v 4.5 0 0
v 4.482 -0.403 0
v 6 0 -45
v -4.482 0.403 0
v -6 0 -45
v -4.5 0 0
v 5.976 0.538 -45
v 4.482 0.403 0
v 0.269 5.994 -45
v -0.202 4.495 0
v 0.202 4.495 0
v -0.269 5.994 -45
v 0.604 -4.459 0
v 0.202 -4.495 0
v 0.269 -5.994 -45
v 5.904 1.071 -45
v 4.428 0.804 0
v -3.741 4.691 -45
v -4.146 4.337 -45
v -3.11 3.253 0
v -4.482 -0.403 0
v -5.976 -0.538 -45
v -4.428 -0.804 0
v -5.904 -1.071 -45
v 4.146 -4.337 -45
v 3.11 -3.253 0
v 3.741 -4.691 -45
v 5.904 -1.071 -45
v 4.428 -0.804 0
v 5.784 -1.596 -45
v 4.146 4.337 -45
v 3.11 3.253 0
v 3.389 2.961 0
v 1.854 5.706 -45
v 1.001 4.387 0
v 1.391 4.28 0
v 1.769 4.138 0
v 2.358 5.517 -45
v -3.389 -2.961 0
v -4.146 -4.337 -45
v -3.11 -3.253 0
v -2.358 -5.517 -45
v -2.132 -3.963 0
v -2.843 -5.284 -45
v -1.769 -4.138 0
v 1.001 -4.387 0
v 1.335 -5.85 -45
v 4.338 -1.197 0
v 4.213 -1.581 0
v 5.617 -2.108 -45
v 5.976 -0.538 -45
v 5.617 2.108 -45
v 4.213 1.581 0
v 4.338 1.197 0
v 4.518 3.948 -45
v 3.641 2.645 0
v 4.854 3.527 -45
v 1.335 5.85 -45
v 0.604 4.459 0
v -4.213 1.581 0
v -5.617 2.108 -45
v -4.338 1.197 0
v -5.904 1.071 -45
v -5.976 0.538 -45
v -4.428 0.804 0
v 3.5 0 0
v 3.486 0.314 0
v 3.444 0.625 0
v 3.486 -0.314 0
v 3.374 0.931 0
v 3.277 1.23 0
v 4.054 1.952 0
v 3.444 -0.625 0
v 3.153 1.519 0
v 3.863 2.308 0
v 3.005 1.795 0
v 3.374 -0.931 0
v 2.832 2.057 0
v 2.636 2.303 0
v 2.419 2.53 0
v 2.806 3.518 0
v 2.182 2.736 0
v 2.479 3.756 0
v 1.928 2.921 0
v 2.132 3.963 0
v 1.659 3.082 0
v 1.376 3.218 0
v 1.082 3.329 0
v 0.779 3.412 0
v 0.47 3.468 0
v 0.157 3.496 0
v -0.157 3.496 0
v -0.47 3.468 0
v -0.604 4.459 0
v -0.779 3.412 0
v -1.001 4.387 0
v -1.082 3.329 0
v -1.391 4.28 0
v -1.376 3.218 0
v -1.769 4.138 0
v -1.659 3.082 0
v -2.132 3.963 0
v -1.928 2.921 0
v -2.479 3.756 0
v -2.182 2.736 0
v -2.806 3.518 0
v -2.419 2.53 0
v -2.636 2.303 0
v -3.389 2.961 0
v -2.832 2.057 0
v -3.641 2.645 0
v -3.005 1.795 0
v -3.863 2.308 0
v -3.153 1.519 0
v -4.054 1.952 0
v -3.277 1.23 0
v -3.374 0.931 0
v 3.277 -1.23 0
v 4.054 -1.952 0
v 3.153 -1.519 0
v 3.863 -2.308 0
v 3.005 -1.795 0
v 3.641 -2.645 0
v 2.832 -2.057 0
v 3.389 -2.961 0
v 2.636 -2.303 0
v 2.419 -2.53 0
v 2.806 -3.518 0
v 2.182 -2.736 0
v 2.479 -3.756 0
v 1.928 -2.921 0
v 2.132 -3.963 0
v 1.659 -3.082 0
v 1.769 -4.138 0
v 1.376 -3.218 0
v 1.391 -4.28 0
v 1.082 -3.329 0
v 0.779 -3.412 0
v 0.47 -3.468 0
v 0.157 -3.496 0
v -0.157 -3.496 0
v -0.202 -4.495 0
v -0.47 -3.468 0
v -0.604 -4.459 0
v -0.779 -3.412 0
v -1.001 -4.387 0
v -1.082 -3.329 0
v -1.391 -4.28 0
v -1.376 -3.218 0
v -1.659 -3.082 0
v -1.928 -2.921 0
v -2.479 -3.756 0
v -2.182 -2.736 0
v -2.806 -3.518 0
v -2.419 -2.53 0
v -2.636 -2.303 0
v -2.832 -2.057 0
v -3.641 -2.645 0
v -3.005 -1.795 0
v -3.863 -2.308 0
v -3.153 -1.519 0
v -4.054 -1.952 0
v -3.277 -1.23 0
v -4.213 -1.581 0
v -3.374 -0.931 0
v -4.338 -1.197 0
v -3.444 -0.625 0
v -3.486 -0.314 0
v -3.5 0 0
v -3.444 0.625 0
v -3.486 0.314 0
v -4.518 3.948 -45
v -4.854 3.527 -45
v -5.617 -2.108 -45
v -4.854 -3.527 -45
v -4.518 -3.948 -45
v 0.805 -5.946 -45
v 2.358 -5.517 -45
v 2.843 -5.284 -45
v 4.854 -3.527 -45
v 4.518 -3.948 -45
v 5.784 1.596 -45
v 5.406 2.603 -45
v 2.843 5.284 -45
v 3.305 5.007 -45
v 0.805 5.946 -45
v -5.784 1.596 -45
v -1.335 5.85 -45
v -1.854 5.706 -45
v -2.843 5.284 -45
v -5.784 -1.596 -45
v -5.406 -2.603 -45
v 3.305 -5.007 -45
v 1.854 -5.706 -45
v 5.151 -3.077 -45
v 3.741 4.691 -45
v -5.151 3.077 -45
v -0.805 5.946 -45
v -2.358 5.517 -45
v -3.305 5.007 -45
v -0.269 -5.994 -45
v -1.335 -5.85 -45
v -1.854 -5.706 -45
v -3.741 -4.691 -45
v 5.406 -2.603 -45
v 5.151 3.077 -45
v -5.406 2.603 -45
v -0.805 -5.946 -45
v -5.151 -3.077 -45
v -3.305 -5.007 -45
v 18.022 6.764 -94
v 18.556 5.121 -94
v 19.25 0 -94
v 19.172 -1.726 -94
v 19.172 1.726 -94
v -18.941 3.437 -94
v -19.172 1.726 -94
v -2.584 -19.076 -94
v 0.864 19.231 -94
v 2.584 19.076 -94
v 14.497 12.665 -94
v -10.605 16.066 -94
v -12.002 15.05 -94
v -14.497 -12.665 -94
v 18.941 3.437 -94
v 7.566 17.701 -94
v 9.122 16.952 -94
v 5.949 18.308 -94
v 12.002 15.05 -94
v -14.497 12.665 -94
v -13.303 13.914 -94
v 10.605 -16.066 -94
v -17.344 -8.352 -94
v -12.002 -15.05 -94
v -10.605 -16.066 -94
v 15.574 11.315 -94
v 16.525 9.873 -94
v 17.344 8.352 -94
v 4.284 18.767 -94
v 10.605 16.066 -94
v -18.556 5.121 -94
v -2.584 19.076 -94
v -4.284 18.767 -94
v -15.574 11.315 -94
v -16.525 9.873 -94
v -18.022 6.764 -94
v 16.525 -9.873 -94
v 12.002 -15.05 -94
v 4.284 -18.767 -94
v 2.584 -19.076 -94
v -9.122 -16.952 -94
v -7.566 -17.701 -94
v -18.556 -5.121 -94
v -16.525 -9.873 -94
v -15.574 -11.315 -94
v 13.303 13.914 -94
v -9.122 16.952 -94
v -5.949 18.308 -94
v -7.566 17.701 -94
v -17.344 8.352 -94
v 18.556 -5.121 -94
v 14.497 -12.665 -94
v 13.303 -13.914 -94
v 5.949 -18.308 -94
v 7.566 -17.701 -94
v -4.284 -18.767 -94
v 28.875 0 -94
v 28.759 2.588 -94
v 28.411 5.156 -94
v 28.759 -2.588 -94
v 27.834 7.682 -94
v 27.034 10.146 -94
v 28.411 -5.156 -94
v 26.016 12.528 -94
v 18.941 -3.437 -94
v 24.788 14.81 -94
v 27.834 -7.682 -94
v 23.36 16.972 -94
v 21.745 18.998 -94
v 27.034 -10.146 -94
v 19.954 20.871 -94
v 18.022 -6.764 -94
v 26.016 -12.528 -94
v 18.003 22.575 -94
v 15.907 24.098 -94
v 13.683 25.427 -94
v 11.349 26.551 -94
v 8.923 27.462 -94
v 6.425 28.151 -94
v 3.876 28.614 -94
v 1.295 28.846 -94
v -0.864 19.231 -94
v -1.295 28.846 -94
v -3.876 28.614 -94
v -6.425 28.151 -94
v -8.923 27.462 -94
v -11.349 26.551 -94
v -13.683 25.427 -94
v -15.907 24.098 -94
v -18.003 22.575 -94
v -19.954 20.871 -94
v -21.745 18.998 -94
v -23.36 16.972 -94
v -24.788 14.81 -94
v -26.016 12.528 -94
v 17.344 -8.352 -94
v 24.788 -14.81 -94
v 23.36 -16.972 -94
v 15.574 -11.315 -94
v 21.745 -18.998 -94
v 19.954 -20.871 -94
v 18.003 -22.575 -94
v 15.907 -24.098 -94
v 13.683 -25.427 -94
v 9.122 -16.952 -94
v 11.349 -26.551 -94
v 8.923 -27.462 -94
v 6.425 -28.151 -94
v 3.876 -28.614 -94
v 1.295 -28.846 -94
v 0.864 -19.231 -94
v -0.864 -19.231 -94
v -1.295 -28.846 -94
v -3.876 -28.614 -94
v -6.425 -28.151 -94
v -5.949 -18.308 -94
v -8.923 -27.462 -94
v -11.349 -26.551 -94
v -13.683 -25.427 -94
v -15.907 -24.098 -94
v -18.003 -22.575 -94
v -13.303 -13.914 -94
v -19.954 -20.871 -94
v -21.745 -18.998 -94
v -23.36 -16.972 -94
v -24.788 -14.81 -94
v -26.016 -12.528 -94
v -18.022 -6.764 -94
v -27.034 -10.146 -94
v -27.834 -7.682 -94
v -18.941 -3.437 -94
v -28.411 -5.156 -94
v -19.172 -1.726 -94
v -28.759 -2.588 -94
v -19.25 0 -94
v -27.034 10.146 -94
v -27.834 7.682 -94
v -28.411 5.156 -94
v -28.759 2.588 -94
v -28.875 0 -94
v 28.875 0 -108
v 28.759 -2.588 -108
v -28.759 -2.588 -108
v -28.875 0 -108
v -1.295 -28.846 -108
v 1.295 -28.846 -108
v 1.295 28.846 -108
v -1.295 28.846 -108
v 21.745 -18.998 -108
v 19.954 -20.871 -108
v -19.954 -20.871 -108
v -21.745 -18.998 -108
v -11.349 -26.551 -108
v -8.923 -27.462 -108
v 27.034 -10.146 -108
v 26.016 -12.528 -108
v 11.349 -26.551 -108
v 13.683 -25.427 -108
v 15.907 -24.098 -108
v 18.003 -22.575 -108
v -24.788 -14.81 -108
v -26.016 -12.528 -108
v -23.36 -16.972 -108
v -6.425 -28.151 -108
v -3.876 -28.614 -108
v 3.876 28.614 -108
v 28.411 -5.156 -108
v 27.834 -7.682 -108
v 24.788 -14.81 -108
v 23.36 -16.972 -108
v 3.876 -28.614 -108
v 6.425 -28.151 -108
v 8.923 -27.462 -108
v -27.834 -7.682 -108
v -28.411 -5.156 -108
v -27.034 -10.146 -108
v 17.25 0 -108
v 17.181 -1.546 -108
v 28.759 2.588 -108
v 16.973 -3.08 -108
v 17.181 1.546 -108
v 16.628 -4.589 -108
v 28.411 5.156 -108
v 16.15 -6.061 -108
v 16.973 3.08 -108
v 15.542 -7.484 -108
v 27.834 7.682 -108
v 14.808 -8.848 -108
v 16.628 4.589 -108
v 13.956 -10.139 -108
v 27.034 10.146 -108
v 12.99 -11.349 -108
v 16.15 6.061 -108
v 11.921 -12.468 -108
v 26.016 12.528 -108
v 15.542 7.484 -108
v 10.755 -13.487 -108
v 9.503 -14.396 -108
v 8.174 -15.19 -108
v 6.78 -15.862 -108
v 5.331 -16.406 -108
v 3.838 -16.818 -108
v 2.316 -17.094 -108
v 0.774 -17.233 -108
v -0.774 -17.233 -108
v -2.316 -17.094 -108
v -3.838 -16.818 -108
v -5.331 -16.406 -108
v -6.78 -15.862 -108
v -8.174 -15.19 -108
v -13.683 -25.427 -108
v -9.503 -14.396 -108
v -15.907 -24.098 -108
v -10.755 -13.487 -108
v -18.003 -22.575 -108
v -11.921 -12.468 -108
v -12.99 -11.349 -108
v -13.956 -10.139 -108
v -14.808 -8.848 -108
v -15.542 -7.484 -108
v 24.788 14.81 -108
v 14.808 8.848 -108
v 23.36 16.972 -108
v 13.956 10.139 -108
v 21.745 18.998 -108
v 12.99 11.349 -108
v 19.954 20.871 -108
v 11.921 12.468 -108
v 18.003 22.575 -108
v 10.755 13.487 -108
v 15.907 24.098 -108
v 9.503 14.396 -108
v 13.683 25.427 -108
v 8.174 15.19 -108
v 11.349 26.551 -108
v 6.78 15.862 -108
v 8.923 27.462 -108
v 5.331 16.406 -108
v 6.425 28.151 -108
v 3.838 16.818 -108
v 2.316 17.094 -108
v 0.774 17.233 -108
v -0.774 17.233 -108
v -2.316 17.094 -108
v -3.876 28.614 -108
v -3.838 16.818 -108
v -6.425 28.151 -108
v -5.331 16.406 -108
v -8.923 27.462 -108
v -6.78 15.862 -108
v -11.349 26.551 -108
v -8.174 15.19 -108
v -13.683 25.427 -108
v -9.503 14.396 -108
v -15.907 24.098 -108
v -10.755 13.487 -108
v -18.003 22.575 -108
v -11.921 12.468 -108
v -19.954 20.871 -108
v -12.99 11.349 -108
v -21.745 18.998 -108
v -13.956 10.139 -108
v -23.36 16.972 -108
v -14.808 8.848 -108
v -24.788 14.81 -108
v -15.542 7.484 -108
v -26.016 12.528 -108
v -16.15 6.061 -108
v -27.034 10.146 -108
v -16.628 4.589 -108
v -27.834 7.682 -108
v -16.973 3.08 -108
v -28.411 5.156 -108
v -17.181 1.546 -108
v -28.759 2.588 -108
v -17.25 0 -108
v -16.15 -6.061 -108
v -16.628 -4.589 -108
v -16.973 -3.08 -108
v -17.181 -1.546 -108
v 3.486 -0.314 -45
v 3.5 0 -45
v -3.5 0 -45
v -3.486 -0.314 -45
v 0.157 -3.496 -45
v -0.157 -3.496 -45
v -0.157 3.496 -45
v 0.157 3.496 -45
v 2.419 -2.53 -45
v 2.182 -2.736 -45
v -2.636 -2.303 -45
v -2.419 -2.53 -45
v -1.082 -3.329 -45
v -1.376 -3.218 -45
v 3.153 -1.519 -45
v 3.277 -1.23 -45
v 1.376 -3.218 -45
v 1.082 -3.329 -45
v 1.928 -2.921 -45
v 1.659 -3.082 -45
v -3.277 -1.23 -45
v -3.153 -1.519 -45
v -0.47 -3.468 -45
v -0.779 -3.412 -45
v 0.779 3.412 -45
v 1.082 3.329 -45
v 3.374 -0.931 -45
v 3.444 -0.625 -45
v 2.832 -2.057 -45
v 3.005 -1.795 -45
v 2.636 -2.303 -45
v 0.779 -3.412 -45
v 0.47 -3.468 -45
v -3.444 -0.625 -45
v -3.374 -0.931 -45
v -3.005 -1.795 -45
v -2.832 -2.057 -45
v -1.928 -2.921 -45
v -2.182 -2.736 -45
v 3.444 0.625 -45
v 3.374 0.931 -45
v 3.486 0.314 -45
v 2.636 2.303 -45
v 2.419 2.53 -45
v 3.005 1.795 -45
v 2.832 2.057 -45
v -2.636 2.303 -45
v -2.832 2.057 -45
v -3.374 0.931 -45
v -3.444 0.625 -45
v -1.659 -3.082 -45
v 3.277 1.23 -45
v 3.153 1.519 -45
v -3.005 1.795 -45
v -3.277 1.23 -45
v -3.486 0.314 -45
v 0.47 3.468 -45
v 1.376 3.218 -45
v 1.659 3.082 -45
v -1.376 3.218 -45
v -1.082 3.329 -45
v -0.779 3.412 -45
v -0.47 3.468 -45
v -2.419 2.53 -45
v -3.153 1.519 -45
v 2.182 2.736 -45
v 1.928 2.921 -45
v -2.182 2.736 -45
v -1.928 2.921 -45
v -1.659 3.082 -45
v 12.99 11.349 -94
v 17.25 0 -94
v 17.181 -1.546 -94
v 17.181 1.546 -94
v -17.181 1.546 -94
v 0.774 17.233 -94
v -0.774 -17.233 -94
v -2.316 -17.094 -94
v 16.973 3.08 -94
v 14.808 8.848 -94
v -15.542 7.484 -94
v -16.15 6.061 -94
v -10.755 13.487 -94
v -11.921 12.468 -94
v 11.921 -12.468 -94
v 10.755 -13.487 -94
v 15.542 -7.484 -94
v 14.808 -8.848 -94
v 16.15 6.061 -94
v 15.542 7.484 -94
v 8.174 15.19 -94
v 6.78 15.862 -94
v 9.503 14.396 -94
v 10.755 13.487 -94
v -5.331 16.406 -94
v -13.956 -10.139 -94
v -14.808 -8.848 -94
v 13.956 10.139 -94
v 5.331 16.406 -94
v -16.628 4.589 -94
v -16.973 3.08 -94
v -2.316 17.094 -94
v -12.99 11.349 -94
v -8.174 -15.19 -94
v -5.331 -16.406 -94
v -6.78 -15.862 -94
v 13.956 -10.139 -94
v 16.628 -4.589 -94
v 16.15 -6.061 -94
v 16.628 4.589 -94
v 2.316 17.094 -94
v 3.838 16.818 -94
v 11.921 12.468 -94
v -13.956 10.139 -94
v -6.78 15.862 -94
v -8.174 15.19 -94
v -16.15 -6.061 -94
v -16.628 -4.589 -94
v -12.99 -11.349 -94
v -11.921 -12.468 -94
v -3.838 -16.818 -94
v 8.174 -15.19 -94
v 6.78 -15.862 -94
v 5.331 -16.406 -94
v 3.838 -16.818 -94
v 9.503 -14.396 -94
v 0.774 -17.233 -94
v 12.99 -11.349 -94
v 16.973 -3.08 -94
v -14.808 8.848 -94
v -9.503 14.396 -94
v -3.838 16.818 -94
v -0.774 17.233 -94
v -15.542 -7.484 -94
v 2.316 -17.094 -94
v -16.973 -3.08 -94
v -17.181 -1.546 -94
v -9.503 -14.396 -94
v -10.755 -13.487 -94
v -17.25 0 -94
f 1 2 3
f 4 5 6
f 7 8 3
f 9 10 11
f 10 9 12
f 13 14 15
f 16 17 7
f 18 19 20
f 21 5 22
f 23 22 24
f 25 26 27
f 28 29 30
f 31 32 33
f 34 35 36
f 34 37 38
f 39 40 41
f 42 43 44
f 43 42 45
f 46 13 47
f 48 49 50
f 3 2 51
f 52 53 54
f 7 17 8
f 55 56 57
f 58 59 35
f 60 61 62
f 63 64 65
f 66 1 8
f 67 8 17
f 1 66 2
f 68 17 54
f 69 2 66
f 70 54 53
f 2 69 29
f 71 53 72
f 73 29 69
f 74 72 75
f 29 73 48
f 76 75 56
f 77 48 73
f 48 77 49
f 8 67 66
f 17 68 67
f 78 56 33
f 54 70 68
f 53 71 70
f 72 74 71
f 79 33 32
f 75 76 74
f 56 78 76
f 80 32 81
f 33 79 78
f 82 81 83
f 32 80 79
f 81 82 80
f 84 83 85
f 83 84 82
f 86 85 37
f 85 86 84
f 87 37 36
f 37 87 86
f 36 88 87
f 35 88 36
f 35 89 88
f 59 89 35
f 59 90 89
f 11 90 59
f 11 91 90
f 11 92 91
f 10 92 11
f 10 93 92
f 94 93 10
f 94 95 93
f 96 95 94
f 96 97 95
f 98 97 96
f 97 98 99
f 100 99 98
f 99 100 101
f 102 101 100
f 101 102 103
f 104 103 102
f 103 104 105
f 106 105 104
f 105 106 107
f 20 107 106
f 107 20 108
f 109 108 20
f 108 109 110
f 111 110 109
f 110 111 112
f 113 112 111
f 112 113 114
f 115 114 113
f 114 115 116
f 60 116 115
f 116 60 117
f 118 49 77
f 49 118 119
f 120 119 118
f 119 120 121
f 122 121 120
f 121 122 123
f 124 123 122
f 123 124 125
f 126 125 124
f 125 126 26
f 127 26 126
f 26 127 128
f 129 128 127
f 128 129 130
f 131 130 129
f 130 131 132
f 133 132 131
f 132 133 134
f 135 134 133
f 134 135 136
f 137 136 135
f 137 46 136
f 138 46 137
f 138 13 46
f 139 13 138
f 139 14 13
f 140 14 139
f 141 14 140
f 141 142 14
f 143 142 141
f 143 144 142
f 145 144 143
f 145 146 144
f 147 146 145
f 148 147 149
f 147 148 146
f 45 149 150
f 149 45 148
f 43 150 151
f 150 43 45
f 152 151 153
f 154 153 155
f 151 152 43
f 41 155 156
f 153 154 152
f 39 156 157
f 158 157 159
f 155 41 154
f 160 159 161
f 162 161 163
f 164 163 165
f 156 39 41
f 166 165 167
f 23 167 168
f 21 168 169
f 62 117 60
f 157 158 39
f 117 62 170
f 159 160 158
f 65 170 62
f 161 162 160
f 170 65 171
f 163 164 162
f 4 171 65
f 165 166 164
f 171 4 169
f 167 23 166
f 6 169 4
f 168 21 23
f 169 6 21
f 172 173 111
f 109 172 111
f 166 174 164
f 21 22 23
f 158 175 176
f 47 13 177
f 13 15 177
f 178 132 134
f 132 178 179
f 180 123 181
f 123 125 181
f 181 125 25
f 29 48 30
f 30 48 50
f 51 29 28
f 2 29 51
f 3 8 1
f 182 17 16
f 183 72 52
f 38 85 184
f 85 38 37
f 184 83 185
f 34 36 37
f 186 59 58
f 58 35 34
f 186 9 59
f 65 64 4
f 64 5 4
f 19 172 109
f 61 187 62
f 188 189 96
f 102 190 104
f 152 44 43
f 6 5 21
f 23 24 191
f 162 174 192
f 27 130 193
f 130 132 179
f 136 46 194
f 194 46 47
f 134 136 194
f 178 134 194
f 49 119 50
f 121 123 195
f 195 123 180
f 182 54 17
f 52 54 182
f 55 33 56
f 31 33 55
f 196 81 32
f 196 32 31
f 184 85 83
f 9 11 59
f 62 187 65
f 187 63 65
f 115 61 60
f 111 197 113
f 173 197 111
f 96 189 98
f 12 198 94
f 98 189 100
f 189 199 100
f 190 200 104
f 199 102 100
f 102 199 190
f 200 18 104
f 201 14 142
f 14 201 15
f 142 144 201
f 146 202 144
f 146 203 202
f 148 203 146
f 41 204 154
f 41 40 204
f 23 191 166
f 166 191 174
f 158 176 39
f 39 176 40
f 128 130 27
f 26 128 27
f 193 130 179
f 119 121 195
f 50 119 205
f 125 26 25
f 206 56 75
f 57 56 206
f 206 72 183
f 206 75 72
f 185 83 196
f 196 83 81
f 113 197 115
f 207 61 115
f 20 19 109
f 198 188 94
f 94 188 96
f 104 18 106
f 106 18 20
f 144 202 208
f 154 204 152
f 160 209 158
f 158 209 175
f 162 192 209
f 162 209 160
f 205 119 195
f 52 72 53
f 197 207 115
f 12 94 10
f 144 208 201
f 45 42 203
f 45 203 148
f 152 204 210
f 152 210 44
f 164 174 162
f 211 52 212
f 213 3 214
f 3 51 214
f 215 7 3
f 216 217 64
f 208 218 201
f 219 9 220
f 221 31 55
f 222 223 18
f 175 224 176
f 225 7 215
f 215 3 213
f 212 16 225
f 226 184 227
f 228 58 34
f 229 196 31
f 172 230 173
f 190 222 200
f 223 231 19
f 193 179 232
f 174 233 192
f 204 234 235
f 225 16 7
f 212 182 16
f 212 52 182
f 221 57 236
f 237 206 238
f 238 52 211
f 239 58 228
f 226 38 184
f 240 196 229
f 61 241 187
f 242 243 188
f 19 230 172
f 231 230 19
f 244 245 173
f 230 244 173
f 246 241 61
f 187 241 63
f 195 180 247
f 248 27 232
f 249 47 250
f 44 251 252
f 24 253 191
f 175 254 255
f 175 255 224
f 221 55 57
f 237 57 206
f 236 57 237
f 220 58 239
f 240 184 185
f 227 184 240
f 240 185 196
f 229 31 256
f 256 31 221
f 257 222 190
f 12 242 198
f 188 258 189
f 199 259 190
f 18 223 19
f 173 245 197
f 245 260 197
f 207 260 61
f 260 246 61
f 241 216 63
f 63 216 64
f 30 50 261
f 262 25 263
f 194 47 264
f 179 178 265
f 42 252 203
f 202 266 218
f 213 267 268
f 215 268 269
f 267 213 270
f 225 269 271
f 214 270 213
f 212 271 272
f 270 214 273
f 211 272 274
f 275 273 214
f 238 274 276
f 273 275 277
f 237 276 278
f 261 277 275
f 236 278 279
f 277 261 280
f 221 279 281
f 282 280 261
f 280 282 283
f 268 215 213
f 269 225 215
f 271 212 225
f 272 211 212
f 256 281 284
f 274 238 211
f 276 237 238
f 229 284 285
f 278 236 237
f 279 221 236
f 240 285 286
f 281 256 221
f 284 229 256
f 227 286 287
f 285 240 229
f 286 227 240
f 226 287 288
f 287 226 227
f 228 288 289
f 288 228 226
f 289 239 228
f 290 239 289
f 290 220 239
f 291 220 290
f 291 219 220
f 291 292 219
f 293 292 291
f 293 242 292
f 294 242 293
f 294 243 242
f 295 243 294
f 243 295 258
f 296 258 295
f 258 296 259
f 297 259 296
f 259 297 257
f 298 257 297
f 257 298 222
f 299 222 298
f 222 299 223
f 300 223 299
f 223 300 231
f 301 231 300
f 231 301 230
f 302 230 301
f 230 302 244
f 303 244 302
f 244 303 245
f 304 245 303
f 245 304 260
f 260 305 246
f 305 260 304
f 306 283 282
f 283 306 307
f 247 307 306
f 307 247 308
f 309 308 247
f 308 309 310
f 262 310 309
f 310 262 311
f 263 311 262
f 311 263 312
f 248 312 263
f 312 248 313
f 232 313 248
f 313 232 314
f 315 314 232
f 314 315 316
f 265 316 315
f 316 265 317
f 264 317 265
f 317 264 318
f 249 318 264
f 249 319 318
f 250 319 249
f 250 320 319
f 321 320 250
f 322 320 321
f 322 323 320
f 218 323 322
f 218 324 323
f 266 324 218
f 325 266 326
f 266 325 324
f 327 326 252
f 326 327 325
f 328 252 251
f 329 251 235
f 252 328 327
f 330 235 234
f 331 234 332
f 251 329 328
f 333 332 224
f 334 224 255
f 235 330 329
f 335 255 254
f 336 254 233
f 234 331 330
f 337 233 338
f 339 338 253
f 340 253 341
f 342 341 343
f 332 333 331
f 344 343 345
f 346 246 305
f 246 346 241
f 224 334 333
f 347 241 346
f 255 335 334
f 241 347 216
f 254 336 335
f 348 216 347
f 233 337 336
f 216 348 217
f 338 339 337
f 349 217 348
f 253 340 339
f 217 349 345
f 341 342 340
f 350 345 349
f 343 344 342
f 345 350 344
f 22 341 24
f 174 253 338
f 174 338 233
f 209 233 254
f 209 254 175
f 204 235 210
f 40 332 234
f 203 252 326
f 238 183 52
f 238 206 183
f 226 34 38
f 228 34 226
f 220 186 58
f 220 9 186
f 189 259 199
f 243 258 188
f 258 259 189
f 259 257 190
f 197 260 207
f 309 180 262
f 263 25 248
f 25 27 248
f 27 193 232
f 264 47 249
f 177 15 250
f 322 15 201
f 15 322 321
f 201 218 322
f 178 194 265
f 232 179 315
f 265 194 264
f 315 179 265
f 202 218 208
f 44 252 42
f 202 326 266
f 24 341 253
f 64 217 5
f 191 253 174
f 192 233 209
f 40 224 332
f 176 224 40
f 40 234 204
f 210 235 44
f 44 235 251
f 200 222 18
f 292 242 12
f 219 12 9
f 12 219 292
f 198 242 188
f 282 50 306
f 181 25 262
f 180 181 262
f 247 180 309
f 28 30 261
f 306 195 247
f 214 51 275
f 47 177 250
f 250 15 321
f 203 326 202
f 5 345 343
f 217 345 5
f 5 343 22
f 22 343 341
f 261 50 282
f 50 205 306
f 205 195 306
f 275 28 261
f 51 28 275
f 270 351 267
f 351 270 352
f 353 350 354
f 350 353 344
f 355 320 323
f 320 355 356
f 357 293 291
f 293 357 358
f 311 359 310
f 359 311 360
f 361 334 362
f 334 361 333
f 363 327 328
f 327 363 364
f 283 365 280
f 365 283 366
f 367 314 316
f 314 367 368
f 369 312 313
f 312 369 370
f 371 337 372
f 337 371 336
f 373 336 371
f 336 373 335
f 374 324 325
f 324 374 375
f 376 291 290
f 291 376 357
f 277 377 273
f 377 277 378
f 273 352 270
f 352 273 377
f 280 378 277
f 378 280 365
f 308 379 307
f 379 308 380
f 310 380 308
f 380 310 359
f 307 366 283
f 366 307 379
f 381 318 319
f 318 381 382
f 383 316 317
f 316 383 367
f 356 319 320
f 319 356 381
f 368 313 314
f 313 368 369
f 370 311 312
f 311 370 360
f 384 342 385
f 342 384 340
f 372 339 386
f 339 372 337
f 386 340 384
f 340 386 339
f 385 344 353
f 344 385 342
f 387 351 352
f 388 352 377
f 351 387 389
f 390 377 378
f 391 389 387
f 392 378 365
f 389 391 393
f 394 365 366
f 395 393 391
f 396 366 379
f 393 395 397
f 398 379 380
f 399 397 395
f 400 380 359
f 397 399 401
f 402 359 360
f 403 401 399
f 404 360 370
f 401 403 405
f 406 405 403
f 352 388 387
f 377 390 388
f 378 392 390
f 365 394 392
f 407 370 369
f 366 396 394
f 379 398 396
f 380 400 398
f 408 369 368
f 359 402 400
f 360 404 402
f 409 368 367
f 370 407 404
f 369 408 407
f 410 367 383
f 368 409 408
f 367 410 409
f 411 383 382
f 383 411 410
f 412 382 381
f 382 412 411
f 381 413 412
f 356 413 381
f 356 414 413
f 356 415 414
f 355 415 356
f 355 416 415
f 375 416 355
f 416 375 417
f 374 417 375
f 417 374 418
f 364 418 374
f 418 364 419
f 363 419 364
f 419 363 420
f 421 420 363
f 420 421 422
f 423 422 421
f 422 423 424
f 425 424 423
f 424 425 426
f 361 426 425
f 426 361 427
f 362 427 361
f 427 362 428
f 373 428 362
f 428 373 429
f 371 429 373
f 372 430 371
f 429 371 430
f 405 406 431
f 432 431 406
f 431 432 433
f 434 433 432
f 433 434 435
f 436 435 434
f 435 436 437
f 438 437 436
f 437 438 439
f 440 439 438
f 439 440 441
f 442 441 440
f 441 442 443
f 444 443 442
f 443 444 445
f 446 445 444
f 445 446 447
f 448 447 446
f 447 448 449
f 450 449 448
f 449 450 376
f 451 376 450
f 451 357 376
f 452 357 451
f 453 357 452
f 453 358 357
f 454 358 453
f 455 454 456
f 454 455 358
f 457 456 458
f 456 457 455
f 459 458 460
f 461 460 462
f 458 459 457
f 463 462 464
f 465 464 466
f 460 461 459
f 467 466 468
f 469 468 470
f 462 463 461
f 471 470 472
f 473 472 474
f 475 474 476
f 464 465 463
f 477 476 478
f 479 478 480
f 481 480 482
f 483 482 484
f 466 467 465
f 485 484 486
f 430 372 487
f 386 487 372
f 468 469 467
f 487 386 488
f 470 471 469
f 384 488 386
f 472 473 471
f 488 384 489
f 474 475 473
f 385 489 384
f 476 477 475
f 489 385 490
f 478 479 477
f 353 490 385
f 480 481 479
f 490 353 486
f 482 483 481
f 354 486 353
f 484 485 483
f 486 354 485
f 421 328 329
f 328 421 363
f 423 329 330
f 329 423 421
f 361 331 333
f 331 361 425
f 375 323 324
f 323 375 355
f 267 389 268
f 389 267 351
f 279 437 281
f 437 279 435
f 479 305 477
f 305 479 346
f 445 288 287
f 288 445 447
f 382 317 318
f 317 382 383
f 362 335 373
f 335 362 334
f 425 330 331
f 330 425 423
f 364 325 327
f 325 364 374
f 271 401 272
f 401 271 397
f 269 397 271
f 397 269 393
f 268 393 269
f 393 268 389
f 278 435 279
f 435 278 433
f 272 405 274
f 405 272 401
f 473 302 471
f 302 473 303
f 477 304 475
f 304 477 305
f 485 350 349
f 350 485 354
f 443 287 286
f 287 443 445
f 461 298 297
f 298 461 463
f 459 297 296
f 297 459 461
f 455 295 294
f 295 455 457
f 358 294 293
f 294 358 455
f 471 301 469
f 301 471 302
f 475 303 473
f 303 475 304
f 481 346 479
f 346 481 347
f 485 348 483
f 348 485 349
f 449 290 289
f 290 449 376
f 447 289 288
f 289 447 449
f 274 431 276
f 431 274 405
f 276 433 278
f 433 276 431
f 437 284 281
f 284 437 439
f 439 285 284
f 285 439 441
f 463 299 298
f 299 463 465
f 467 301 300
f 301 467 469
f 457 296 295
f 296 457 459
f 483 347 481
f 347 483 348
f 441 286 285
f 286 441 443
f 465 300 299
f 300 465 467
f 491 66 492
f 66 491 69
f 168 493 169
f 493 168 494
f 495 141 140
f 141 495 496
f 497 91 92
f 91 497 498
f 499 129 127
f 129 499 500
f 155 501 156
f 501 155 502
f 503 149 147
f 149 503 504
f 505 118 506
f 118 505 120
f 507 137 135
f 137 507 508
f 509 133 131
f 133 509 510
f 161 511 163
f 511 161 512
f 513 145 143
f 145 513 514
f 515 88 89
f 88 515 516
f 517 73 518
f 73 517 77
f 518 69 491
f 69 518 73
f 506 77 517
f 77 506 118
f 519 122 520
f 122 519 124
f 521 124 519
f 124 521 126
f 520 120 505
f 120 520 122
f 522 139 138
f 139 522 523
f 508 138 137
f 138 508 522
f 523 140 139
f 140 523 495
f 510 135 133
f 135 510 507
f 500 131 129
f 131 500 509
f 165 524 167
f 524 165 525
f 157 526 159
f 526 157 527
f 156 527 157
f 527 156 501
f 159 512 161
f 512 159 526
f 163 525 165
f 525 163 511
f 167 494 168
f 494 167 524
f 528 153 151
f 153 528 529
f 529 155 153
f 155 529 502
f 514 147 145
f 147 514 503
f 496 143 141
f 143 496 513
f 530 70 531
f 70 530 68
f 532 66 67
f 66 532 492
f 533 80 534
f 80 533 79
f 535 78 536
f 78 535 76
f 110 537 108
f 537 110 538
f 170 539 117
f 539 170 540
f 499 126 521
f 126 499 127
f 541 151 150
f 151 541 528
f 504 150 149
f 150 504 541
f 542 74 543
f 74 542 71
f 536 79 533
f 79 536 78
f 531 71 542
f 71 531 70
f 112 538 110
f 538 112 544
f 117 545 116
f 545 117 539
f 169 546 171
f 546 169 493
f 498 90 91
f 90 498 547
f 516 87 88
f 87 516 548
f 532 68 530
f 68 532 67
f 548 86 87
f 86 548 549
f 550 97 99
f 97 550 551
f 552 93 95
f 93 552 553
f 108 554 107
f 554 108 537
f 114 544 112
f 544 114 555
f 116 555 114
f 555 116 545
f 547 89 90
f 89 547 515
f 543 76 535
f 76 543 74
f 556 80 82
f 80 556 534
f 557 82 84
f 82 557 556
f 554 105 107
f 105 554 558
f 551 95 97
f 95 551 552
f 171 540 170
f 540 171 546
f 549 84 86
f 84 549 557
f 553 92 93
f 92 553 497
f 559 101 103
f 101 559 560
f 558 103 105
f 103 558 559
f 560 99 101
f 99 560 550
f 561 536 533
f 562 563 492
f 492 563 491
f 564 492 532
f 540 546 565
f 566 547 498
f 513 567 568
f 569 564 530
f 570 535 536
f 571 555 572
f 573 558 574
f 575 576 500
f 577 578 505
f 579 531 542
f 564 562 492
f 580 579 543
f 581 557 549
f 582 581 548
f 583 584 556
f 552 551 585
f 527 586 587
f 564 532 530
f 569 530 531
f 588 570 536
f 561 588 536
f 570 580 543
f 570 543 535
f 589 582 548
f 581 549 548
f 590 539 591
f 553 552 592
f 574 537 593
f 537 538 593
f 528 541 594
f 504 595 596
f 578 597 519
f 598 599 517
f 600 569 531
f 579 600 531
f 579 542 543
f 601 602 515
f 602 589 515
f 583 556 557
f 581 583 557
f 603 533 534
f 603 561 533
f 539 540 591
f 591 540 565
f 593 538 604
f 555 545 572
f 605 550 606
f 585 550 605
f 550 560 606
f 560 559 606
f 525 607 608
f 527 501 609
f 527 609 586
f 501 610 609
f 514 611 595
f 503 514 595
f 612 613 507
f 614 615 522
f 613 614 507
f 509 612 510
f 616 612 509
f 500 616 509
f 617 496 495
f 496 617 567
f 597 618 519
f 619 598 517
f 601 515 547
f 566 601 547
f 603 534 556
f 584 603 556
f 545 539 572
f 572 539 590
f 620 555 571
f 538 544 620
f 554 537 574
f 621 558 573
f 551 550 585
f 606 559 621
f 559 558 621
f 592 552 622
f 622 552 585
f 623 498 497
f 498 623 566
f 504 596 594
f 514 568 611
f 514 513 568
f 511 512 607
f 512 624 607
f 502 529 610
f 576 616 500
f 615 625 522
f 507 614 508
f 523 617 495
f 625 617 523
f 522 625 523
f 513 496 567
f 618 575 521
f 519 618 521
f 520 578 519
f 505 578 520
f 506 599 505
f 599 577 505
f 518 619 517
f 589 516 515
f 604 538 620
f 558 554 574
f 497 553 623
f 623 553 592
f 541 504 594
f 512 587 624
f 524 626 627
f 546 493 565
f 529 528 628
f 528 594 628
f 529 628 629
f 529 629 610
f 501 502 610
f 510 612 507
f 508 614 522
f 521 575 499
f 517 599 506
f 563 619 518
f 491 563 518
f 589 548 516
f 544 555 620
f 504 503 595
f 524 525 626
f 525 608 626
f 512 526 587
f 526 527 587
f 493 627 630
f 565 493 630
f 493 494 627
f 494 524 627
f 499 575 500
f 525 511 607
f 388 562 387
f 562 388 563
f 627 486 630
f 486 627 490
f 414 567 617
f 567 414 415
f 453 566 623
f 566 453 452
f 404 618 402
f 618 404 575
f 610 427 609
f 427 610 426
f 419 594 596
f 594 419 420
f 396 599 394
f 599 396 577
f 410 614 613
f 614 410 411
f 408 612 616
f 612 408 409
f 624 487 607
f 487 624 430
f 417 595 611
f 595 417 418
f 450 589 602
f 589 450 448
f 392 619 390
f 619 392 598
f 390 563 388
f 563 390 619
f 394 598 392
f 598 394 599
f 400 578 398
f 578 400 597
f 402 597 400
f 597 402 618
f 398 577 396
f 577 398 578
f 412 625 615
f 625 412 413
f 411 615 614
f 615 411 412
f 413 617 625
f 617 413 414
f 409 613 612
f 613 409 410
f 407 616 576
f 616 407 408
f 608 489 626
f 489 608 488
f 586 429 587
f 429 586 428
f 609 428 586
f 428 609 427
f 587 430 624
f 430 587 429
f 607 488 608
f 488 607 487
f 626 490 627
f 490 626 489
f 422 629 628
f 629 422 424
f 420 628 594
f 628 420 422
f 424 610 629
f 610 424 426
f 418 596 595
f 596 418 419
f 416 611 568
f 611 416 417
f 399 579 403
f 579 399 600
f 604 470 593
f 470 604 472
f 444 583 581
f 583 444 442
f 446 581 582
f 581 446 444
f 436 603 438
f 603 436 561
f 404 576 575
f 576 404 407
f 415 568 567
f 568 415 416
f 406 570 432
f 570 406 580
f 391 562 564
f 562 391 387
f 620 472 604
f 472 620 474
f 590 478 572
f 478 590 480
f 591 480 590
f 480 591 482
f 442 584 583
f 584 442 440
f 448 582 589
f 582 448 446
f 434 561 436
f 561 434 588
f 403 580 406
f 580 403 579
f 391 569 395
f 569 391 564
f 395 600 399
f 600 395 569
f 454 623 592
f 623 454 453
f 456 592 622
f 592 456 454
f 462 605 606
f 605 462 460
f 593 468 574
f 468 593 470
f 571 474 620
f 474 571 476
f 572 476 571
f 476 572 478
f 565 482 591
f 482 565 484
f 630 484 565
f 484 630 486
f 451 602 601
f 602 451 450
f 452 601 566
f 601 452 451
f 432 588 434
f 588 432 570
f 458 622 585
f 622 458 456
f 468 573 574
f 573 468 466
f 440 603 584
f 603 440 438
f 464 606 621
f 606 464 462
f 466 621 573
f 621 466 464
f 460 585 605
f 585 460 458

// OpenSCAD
// adapted for trumpet and horn driver by Christopher Jette -jette@ccrma.stanford.edu  November/December 2018
// Actuated euphopnium mouthpiece 3D printing playground
// © 2018 by Matthew Wright - matt@ccrma.stanford.edu   
// Work done in collaboration with Geir Davidsen at CCRMA October/November 2018
//
// It is made available under the Creative Commons Attribution 4.0 International Public License: https://creativecommons.org/licenses/by/4.0/

$fn = 70;
// $fn = 70;
// Nando usually uses 64

// All units are in mm


// designed paramters

thickness = 2;
h1 = 45;  // height of thinnest part
h2 = 49;

d1_exterior = 9;
d2_exterior = 12;   // 2 + d1_exterior in Matt code
d3_interior = 34.5; // could do this @32.5 and use threads to cut into plastic (tap it) or just use tap

lip_thickness = 4;
lip_width = 10;

//hole_diameter = 4;  // to fit a 6-32 bolt

cap_cylinder_height = 25;

jack_hole_diameter = 6;


// computed parameters

// the uniform-thickness approach:
    //d1_interior = d1_exterior-2*thickness;
    // d2_interior = d2_exterior-2*thickness;

// The inner-funnel-cone-comes-to-a-tiny-hole approach
d1_interior = d1_exterior - 2;  // because 1mm is the thinnest wall
d2_interior = 7;

d3_exterior = d3_interior+2*thickness;
lip_exterior_diameter = d3_exterior+2*lip_width;
mj_height = 14;

hole_center_radius = (lip_exterior_diameter/2) - (lip_width/2);
max_height = 2*(h1+h2)+cap_cylinder_height;

echo("d1 interior=", d1_interior, "exterior=", d1_exterior);
echo("d2 interior=", d2_interior, "exterior=", d2_exterior);
echo("d3 interior=", d3_interior, "exterior=", d3_exterior);

// Rotate everything



// "Mouthpiece" aka "funnel" part:
rotate([180,0,0])

difference() {
    union() {  // The "exterior" shape
        
        cylinder(h=h1, d1=d1_exterior, d2=d2_exterior);

        translate([0,0,h1]) 
            cylinder(h=h2, d1=d2_exterior, d2=d3_exterior);
        
        //mouthpieceJoint (where lip had been) exterior
        translate([0,0,h1+h2])
        cylinder(h=mj_height, d = d3_exterior*1.5);
    }
    
    union() {  
        
        // Interior shape will be "cut out" to make the interior of the "funnel"

        cylinder(h=h1, d1=d1_interior, d2=d2_interior);

        translate([0,0,h1]) 
            cylinder(h=h2, d1=d2_interior, d2=(d3_interior));
        
            // a cylander to hold the horn driver - the mounthpieceJoint
        translate([0,0,h1+h2]) 
            cylinder(h=mj_height, d=(d3_interior));
       
        // Also cut out the four holes that let us assemble it 
   
//        translate([hole_center_radius, 0, 0])
//            cylinder(d=hole_diameter, h=max_height);
//
//        translate([-hole_center_radius, 0, 0])
//            cylinder(d=hole_diameter, h=max_height);
//
//        translate([0, hole_center_radius, 0])
//            cylinder(d=hole_diameter, h=max_height);
//
//        translate([0, -hole_center_radius, 0])
//            cylinder(d=hole_diameter, h=max_height);
    }
}







// "Cap" part

*difference() {
    union() {  // The "exterior" shape
        
        difference() { // hemisphere
            sphere(d=d3_exterior);
            translate([0,0,-(d3_exterior/2)])
                cube(size=d3_exterior, center=true);
        }
        
        // The cylindrical part that makes enough room for the actuator
        translate([0,0,-cap_cylinder_height])
            cylinder(h=cap_cylinder_height, d=d3_exterior);
        
        // the "lip"
        translate([0,0,-(cap_cylinder_height+lip_thickness)])
            cylinder(h=lip_thickness, d = lip_exterior_diameter);
    }
    
    union() {  
        
        // Interior shape will be "cut out" to make the interior 
        sphere(d=d3_interior);
        
        translate([0,0,-(2*cap_cylinder_height)])
            cylinder(h=(2*cap_cylinder_height), d=d3_interior);
       
        // Also cut out the four holes that let us assemble it 
        // better style: a for loop through 4 rotation angles
        
        translate([hole_center_radius, 0, -max_height])
            cylinder(d=hole_diameter, h=max_height*2);

        translate([-hole_center_radius, 0, -max_height])
            cylinder(d=hole_diameter, h=max_height*2);

        translate([0, hole_center_radius, -max_height])
            cylinder(d=hole_diameter, h=max_height*2);

        translate([0, -hole_center_radius, -max_height])
            cylinder(d=hole_diameter, h=max_height*2);
        
        
        // And the hole for the 1/8" jack, right at the top of the whole thing (i.e., centered at X=Y=0)
        cylinder(d=jack_hole_diameter, h=max_height*2);
    }
}
